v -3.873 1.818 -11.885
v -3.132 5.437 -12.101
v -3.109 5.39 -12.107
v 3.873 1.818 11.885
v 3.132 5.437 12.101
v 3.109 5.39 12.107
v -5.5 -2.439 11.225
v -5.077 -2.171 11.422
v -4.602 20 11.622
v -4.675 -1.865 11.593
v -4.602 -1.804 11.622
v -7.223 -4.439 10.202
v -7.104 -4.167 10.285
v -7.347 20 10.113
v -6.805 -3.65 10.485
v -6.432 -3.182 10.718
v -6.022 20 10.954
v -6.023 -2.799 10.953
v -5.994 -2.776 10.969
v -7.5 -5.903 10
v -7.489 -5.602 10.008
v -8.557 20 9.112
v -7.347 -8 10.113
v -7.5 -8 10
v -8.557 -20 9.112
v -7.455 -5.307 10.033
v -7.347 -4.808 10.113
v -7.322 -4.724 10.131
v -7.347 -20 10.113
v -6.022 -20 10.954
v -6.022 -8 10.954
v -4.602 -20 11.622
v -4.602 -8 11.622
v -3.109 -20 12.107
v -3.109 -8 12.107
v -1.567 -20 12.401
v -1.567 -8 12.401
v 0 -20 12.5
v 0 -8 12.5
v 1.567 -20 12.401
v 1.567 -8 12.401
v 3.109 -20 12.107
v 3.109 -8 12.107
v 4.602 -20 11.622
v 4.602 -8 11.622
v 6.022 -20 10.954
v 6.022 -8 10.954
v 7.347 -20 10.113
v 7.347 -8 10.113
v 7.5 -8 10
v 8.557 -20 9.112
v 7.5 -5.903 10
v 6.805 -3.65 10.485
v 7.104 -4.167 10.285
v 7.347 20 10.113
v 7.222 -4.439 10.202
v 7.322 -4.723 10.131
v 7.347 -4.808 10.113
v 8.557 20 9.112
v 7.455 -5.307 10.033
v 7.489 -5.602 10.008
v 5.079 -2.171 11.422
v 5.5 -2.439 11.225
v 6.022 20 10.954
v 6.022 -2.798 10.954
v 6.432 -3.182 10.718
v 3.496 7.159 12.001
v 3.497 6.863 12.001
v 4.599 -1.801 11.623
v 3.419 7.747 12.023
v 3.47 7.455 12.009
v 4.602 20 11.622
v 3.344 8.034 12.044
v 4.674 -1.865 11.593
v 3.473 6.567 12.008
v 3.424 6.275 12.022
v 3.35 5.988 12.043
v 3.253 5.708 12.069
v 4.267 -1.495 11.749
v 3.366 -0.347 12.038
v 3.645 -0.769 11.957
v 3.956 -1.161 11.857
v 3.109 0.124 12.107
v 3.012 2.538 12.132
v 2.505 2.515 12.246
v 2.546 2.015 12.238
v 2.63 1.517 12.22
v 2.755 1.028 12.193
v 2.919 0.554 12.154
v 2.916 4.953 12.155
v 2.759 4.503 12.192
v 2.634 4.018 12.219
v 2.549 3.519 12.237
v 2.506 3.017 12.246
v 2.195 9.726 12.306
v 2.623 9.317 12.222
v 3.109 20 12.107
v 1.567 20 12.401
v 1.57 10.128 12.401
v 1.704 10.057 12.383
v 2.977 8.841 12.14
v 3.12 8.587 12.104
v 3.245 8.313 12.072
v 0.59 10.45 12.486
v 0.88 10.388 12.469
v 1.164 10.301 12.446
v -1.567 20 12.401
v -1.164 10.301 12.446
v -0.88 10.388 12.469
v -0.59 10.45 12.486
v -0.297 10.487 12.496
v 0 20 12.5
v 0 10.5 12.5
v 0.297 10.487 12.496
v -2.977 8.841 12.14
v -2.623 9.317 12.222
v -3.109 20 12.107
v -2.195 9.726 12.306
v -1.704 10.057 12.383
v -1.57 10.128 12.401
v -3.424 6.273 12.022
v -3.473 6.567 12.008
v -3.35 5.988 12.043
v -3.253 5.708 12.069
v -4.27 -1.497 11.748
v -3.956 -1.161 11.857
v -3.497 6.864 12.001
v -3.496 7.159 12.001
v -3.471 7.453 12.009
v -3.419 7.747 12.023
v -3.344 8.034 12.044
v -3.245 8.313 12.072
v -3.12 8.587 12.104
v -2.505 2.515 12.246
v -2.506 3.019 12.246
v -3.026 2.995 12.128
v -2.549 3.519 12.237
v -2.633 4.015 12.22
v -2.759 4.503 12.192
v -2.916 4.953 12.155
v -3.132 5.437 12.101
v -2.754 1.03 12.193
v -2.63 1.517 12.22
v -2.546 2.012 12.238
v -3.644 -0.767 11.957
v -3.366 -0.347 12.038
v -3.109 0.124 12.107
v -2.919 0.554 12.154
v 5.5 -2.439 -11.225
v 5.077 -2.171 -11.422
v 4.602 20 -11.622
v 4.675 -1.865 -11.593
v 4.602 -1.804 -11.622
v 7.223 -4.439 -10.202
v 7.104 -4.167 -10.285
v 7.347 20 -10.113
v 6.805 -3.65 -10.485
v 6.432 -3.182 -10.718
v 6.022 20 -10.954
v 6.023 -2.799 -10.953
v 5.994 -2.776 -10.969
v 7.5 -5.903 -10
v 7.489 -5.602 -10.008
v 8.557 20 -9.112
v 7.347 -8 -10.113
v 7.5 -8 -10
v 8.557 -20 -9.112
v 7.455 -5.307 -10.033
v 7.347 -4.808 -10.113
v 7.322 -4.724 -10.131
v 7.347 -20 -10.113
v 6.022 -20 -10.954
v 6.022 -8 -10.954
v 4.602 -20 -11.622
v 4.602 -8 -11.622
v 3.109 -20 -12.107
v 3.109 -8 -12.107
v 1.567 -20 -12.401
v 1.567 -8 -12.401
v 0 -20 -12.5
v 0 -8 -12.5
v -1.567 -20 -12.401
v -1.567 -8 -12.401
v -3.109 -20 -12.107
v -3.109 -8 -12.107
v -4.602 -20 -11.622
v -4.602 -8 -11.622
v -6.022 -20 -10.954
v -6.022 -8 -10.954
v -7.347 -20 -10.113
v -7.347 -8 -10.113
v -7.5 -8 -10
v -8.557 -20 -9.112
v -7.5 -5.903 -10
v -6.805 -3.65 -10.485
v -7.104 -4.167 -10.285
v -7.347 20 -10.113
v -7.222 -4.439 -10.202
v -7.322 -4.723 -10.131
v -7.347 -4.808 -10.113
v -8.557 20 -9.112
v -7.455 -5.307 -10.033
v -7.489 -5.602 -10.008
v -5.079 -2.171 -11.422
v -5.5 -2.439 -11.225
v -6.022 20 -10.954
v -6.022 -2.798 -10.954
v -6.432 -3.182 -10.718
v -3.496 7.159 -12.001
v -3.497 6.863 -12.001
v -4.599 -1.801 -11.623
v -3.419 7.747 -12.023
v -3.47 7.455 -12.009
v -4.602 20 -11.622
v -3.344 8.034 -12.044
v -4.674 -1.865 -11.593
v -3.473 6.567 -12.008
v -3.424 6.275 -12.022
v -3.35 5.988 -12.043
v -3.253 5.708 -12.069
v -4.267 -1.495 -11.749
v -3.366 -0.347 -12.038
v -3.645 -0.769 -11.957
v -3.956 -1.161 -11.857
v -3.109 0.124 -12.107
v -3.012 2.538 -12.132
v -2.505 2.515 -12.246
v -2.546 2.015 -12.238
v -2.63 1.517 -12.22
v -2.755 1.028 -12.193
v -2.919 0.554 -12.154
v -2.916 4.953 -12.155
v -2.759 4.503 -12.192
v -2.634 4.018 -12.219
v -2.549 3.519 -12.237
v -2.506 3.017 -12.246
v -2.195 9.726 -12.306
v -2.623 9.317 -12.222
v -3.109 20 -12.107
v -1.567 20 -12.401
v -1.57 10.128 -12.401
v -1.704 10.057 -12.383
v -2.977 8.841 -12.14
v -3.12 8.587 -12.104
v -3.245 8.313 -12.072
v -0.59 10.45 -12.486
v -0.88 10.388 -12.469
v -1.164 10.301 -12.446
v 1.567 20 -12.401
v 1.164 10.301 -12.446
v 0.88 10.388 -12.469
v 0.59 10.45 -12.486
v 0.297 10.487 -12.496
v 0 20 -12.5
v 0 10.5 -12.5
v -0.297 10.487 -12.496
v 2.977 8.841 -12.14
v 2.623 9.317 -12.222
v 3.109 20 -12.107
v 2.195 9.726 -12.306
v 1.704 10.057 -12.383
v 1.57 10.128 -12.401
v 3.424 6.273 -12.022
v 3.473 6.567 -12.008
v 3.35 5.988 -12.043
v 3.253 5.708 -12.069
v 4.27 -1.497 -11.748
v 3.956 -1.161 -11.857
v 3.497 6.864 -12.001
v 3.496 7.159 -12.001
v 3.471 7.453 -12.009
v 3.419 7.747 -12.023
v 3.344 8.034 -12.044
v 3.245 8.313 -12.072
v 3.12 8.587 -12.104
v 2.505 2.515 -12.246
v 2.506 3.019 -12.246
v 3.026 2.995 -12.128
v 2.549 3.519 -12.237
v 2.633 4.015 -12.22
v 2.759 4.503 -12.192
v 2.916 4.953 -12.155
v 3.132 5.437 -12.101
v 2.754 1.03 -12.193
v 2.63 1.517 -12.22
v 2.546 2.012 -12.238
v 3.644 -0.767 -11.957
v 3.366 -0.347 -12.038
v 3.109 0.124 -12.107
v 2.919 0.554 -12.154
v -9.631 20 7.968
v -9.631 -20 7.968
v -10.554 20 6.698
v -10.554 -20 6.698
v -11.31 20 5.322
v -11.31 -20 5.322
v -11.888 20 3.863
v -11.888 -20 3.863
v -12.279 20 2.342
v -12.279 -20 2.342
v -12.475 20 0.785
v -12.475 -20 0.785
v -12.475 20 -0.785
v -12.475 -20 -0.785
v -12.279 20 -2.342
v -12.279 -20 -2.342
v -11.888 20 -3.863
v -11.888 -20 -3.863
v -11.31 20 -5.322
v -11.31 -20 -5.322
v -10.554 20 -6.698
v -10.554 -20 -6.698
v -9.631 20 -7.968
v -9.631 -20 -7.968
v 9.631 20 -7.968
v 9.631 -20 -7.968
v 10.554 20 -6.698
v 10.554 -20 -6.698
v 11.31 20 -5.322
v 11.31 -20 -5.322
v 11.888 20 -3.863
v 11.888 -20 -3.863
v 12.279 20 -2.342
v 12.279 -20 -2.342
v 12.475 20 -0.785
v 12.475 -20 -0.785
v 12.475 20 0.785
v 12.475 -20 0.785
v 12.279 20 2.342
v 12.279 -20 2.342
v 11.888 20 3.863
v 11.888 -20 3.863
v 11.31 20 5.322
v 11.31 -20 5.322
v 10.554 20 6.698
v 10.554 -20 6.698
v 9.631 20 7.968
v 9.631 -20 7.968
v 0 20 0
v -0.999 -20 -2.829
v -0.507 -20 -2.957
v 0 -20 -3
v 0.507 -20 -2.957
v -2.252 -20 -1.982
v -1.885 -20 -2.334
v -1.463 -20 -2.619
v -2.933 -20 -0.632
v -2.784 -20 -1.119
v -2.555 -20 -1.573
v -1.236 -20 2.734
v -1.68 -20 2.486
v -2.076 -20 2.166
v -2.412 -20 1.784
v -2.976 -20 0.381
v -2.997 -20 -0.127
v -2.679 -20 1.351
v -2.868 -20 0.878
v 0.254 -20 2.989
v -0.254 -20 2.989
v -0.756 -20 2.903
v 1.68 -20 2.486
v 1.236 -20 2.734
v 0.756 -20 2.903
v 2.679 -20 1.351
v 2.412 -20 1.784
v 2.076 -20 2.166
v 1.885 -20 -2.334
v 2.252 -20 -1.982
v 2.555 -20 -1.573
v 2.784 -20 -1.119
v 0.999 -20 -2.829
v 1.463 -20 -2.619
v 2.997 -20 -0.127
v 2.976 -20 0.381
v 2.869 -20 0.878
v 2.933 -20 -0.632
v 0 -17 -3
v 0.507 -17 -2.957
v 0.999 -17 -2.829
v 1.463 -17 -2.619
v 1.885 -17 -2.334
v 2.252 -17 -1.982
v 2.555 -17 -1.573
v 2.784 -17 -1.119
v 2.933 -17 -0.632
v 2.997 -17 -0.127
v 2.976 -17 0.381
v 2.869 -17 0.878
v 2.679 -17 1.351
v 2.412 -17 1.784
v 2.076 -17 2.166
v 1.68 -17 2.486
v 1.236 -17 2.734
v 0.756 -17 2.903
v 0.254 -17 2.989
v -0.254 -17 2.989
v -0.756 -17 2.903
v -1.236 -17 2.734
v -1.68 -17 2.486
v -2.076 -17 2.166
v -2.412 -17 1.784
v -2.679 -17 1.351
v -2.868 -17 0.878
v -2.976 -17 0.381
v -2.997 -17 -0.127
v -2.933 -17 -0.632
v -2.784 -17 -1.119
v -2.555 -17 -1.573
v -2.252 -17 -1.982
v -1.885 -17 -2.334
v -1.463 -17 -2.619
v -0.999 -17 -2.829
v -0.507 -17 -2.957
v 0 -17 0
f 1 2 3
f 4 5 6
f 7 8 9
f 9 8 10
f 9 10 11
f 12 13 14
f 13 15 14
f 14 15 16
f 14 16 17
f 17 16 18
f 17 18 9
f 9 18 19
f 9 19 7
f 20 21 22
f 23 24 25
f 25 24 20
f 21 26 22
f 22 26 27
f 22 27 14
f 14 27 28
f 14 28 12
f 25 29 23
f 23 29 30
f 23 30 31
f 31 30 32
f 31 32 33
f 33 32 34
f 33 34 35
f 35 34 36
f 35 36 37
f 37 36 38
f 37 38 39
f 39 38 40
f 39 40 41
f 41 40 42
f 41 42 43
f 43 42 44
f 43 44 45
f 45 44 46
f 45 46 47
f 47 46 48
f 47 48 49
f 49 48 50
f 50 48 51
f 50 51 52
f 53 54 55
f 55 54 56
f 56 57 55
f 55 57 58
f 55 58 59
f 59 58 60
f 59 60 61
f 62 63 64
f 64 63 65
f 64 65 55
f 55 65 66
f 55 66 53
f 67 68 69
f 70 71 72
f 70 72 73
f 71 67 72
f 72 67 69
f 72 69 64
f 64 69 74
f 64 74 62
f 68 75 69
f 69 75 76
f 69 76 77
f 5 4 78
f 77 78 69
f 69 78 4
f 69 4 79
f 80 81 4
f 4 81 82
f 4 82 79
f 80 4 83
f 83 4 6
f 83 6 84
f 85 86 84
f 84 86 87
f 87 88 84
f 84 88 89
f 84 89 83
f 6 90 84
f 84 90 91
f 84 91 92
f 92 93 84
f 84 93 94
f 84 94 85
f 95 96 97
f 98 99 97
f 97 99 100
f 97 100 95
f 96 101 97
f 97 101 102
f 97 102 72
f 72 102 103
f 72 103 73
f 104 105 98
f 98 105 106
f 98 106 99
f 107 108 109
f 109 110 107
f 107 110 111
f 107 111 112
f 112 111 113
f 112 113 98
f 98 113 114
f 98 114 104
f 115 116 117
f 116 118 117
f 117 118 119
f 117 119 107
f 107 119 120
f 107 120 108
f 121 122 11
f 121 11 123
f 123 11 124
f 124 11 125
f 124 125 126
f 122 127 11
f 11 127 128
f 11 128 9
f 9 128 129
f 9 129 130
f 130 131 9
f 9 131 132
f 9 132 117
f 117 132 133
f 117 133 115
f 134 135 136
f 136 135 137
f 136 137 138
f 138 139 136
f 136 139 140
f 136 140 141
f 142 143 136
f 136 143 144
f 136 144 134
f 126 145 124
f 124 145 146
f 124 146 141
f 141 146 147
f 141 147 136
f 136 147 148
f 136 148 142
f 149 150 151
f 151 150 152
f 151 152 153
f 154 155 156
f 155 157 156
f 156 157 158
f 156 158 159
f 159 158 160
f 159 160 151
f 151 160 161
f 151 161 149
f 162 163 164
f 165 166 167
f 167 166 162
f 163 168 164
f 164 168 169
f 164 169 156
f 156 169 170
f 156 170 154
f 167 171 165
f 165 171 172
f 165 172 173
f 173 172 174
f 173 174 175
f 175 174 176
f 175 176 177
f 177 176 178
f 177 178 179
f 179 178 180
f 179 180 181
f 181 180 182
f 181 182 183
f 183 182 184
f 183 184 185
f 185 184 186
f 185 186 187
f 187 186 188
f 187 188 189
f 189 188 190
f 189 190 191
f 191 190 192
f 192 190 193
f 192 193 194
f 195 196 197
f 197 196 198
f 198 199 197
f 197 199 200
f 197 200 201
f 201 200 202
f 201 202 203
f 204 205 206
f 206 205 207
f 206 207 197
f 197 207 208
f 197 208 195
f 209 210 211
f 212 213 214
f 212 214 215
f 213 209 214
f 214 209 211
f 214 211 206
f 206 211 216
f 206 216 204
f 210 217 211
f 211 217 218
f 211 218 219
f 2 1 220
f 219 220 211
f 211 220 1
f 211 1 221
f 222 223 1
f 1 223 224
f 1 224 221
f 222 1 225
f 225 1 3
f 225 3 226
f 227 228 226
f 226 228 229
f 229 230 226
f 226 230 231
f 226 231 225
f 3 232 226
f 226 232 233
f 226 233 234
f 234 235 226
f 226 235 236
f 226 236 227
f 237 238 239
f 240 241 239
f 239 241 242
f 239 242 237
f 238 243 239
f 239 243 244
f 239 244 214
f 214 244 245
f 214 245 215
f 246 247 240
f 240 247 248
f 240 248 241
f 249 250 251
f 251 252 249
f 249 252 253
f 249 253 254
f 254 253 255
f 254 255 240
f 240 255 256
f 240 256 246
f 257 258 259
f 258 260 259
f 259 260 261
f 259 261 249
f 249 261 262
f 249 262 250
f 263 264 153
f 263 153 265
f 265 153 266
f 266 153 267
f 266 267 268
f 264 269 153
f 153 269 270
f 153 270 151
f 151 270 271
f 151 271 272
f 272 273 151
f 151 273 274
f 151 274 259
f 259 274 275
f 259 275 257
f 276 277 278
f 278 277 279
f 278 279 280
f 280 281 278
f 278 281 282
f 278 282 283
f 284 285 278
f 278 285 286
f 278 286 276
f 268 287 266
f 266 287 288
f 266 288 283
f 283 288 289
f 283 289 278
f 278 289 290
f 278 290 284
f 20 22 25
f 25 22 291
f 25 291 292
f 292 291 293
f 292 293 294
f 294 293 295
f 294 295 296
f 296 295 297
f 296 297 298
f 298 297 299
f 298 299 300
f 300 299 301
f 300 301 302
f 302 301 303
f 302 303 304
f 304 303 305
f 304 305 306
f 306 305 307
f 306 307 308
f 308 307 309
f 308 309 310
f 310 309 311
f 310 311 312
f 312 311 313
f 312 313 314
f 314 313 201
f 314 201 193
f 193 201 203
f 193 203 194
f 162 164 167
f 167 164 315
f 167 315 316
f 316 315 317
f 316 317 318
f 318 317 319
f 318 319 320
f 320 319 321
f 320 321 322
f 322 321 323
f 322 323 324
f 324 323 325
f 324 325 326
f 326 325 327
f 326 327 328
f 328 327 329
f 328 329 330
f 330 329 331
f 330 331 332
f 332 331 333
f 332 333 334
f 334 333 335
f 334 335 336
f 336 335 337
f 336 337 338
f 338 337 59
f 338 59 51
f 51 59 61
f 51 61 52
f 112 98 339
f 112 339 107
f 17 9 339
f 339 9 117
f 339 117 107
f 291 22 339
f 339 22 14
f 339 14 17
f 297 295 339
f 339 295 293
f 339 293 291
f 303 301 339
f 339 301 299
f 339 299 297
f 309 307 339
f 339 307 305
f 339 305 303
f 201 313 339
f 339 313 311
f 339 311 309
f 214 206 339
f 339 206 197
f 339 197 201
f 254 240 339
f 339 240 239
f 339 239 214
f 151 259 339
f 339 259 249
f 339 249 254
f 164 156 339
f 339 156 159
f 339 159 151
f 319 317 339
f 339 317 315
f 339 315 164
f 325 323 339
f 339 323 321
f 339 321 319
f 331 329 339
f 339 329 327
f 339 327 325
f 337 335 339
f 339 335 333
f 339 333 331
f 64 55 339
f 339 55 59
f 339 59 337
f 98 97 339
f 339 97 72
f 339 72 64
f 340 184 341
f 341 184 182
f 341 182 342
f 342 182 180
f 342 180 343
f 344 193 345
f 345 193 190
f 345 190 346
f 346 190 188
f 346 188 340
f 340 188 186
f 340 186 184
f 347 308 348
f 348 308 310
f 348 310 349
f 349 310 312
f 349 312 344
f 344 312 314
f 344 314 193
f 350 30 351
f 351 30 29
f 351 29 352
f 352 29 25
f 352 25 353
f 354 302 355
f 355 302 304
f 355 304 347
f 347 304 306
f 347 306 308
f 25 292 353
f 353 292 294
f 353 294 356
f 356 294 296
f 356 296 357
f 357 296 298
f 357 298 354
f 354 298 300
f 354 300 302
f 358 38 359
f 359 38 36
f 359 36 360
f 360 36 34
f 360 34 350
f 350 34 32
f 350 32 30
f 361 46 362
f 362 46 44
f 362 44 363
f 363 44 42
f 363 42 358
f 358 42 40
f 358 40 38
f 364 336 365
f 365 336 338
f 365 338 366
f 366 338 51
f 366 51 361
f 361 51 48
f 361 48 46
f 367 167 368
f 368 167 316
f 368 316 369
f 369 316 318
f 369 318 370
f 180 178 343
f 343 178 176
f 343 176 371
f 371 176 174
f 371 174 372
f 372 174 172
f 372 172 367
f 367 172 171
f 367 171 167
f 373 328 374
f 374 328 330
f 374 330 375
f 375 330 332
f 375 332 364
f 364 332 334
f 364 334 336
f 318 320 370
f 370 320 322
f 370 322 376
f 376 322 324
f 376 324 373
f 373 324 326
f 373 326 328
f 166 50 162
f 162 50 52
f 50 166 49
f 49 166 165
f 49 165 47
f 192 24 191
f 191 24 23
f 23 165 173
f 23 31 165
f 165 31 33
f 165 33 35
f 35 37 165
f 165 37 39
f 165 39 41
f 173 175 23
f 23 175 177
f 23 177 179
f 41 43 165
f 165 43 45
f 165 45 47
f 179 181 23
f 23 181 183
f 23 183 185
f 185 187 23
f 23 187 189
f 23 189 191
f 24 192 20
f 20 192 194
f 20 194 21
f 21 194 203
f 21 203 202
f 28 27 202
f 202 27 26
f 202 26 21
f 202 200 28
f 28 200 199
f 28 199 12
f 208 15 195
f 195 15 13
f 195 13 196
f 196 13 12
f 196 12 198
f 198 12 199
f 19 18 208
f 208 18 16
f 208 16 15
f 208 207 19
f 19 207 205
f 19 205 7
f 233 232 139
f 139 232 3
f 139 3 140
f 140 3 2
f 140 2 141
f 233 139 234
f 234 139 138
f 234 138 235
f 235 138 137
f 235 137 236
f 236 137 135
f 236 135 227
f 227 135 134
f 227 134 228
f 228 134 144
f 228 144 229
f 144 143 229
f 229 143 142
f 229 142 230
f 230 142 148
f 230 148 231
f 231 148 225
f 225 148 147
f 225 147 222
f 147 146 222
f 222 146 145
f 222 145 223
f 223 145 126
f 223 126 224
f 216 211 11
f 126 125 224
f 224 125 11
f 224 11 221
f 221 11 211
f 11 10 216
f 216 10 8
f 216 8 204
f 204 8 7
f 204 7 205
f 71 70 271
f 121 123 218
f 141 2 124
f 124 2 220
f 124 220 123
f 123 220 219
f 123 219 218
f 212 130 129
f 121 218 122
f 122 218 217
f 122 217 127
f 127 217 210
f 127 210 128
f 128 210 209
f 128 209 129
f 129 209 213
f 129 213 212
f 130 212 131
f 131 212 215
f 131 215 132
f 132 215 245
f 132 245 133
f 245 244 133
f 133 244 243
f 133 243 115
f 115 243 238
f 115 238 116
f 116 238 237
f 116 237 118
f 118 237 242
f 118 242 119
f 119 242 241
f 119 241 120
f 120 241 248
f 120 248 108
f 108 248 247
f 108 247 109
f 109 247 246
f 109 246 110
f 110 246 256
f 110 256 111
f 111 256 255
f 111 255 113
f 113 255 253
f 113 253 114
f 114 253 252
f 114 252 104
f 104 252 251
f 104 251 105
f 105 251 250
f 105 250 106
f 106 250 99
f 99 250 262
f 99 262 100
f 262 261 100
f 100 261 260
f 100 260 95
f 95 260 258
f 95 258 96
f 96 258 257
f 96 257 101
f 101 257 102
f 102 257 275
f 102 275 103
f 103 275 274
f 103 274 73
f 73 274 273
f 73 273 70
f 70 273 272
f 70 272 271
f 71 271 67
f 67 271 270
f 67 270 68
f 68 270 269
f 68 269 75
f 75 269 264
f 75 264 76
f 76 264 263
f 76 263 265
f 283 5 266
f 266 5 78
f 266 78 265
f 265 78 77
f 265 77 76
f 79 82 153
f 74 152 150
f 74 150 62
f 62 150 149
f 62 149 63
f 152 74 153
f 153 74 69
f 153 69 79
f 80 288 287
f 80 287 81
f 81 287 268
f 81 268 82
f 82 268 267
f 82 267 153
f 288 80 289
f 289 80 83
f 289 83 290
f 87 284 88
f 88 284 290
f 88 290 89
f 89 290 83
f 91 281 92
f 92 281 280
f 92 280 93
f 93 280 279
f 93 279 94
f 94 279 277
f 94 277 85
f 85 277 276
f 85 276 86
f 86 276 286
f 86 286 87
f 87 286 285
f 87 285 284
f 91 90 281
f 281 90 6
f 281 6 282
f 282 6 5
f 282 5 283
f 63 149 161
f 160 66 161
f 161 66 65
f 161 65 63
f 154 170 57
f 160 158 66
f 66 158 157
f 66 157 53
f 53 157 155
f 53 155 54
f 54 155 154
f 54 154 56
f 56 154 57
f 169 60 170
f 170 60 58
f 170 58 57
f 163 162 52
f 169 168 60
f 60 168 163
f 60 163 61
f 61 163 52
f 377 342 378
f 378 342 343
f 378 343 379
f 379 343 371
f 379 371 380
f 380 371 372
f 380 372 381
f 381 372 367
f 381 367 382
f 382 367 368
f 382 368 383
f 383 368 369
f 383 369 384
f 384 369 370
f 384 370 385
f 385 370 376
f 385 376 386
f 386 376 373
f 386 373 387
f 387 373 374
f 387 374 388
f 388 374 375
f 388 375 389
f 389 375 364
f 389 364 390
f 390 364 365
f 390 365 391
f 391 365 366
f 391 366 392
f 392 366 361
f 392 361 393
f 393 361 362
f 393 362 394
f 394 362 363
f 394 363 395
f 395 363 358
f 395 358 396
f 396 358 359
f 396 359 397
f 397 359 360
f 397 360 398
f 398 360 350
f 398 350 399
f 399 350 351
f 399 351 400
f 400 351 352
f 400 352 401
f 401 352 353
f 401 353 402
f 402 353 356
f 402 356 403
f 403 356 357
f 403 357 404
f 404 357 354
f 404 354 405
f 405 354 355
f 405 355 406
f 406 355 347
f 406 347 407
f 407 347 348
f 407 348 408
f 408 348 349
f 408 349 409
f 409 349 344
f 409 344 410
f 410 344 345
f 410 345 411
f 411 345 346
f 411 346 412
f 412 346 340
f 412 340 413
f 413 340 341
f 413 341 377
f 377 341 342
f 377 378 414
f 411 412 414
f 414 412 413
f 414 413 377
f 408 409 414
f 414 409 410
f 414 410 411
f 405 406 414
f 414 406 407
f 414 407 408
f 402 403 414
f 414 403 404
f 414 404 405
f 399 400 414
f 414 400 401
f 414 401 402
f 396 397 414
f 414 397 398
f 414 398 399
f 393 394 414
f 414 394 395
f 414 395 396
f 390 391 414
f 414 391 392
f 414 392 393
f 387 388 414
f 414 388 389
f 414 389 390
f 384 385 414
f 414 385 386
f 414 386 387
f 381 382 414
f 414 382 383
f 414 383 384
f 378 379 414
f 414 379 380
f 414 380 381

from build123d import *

# Parameters (mm, degrees)
SKETCH2_R               = 12.5
BOSS_EXTRUDE1_DEPTH     = 20
CUT_EXTRUDE1_DEPTH      = 13.5
CUT_EXTRUDE1_DEPTH_BACK = 13.5
SKETCH4_R               = 3
CUT_EXTRUDE2_DEPTH      = 3


with BuildPart() as part:
    # Sketch2 → Boss-Extrude1 (new body, symmetric)
    with BuildSketch(Plane(origin=(0, 0, 0), x_dir=(1, 0, 0), z_dir=(0, 1, 0))):
        Circle(SKETCH2_R)
    extrude(amount=BOSS_EXTRUDE1_DEPTH, both=True)

    # Sketch3 → Cut-Extrude1 (cut, two sides)
    with BuildSketch(Plane.XY) as cut_extrude1_sk:
        with BuildLine():
            Line((-7.5, -8), (7.5, -8))
            Line((7.5, -8), (7.5, -5.902894725))
            ThreePointArc((7.5, -5.902894725), (6.964101615, -3.902894725), (5.5, -2.43879311))
            ThreePointArc((5.5, -2.43879311), (2.754189416, 1.029452854), (3.131578947, 5.436921852))
            ThreePointArc((3.131578947, 5.436921852), (0, 10.5), (-3.131578947, 5.436921852))
            ThreePointArc((-3.131578947, 5.436921852), (-2.754189416, 1.029452854), (-5.5, -2.43879311))
            ThreePointArc((-5.5, -2.43879311), (-6.964101615, -3.902894725), (-7.5, -5.902894725))
            Line((-7.5, -5.902894725), (-7.5, -8))
        make_face()
    extrude(amount=CUT_EXTRUDE1_DEPTH, mode=Mode.SUBTRACT)
    extrude(cut_extrude1_sk.sketch, amount=-CUT_EXTRUDE1_DEPTH_BACK, mode=Mode.SUBTRACT)

    # Sketch4 → Cut-Extrude2 (cut)
    with BuildSketch(Plane(origin=(0, -20, 0), x_dir=(-1, 0, 0), z_dir=(0, -1, 0))):
        Circle(SKETCH4_R)
    extrude(amount=-CUT_EXTRUDE2_DEPTH, mode=Mode.SUBTRACT)


solid = part.part
